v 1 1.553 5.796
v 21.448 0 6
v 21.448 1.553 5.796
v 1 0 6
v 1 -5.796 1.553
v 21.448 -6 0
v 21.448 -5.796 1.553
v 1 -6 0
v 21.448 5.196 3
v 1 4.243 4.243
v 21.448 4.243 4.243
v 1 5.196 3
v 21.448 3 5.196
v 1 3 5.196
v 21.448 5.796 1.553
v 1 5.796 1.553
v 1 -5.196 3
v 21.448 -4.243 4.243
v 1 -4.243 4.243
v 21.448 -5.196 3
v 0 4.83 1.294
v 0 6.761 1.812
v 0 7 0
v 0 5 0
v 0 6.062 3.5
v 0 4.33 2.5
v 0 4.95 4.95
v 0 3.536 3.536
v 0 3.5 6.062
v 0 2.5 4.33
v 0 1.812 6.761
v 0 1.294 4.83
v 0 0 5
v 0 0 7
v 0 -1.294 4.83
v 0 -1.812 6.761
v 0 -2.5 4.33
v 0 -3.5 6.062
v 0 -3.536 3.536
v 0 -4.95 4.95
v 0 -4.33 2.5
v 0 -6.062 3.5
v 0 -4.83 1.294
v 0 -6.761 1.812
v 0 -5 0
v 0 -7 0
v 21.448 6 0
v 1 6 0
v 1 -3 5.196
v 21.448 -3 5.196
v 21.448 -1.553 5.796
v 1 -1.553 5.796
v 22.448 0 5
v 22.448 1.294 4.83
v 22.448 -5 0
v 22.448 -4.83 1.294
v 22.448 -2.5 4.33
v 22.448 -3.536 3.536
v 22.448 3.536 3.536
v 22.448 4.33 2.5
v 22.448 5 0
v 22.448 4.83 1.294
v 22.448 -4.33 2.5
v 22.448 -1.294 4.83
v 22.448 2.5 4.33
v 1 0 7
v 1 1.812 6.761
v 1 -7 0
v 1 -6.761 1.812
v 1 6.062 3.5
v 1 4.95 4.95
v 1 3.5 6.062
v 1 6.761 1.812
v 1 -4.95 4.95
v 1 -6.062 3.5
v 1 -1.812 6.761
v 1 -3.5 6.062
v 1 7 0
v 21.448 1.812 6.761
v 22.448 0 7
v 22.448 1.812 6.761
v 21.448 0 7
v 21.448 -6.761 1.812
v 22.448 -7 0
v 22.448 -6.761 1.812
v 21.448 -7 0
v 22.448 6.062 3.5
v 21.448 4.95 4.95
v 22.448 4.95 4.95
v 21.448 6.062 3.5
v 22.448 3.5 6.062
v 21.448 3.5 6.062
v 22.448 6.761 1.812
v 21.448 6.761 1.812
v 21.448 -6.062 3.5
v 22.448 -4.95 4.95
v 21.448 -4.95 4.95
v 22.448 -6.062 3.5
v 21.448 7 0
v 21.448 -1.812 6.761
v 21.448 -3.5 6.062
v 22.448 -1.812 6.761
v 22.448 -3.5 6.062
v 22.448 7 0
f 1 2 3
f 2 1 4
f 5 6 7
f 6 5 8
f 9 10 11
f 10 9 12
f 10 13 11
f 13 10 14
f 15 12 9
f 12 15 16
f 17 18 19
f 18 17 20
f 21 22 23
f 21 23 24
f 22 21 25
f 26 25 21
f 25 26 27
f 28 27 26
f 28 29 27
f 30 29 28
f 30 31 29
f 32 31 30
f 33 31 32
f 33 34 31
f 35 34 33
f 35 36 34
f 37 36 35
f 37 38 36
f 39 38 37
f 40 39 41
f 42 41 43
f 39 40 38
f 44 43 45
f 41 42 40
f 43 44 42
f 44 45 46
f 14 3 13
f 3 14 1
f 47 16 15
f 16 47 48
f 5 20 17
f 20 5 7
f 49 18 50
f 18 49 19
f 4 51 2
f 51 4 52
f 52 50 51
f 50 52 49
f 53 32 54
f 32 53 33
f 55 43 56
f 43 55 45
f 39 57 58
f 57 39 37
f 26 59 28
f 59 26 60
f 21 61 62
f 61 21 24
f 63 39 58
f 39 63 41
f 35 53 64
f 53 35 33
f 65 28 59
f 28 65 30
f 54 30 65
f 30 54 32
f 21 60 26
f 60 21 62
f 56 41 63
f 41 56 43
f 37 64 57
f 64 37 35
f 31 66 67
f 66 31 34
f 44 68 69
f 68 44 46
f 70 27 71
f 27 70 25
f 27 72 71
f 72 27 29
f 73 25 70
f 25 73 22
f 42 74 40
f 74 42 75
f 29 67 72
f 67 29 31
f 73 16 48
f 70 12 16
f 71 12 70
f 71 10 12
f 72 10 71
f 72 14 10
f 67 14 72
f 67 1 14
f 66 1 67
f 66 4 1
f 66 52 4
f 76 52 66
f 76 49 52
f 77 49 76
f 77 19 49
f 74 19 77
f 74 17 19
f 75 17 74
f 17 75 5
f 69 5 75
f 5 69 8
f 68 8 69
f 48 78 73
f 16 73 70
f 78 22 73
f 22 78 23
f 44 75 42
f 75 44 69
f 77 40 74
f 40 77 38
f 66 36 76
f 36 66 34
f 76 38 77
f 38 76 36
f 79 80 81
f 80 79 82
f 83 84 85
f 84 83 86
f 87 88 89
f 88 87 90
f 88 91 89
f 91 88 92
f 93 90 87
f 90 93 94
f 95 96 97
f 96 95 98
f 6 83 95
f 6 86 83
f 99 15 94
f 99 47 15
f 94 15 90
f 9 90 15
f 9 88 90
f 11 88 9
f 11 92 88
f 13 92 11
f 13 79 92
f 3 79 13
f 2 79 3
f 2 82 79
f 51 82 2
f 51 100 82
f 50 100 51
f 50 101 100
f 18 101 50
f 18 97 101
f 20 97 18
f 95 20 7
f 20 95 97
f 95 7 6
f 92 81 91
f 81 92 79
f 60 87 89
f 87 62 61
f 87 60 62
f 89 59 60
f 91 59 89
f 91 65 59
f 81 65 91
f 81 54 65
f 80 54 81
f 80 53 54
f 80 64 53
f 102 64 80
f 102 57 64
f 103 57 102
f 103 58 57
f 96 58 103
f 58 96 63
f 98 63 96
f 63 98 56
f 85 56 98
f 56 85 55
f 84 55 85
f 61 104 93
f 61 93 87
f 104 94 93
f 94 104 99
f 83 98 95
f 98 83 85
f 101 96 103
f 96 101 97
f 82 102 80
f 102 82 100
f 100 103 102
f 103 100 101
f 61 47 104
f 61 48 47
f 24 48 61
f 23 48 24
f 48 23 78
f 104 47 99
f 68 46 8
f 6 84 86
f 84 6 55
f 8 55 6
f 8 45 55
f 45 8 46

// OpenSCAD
// file: ../build_environments.scad
// build_environments.scad: modules to build level sections
//

module pool(diameter=10.0, wall_height=2.0, step_width=3.0, connections=[])
{
    difference() {
        union() {
        difference() {
            cylinder(h=0.5,r1=diameter+step_width,r2=diameter+step_width,$fn=48);
            translate([0,0,-0.1])
                cylinder(h=0.7,r1=diameter,r2=diameter,$fn=48);
        }
        difference() {
            cylinder(h=wall_height,r1=diameter+step_width+1.0,r2=diameter+step_width+1.0,$fn=48);
            translate([0,0,-0.1])
                cylinder(h=wall_height+0.2,r1=diameter+step_width,r2=diameter+step_width,$fn=48);
        }
        }
    
        for (c = connections)
        {
            rotate([0,90,0]) {
                angle = atan2(c[1],c[0]);
                rotate([-angle,0,0]) {
                    cylinder(h=diameter+5.0,r1=c[2],r2=c[2],$fn=48);
                }
            }
        }
    }
}

module straight(length=10.0, width=2.0, dy1=0.0, dy2=0.0, dz=0.0)
{
    dims = [0, 0, 0, 0, 0, (dz/length)];
    matrix = [
        [ 1, dims[0], dims[1], 0 ],
        [ dims[2], 1, dims[4], 0 ],
        [ dims[5], dims[3], 1, 0 ],
        [ 0, 0, 0, 1 ]
    ];
    multmatrix(matrix)
    difference() {
        translate([dy1,0,0])
        union() {
            rotate([0,90,0]) {
                difference() {
                    cylinder(h=(length-dy1-dy2),r1=width+1.0,r2=width+1.0,$fn=24);
                    translate([0,0,-0.1])
                        cylinder(h=(length-dy1-dy2+0.2),r1=width,r2=width,$fn=24);
                }
                difference() {
                    cylinder(h=1.0,r1=width+2.0,r2=width+2.0,$fn=24);
                    translate([0,0,-0.1])
                        cylinder(h=1.2,r1=width,r2=width,$fn=24);
                }
                translate([0,0,(length-dy1-dy2)-1.0]) {
                    difference() {
                        cylinder(h=1.0,r1=width+2.0,r2=width+2.0,$fn=24);
                        translate([0,0,-0.1])
                            cylinder(h=1.2,r1=width,r2=width,$fn=24);
                    }
                }
            }
        }
        translate([0,0,-(2*width+4.0)/2])
            cube([3*length,3*length,2*width+4.0],center=true);
    }
}

module curve(p0=[0,0], center=[0,0], dir=1, angle=0.0, width=2.0)
{
    radius = sqrt((p0[0]-center[0])*(p0[0]-center[0]) + (p0[1]-center[1])*(p0[1]-center[1]));
    if (dir == 0) {
        difference() {
            rotate([0,0,-90])
            difference() {
                rotate_extrude(angle = angle, convexity = 10, $fn=32)
                    translate([radius, 0, 0])
                        circle(r = width+1.0,$fn=24);
                rotate([0,0,-1.0])
                    rotate_extrude(angle = angle+2.0, convexity = 10, $fn=32)
                        translate([radius, 0, 0])
                            circle(r = width,$fn=24);
            }
            translate([0,0,-(2*width+4.0)/2])
                cube([5*radius,5*radius,2*width+4.0],center=true);
        }
    }
    else {
        difference() {
            rotate([0,0,90])
            difference() {
                rotate_extrude(angle = -angle, convexity = 10, $fn=32)
                    translate([radius, 0, 0])
                        circle(r = width+1.0,$fn=24);
                rotate([0,0,1.0])
                    rotate_extrude(angle = -angle-2.0, convexity = 10, $fn=32)
                        translate([radius, 0, 0])
                            circle(r = width,$fn=24);
            }
            translate([0,0,-(2*width+4.0)/2])
                cube([5*radius,5*radius,2*width+4.0],center=true);
        }
    }

}

// test pool
//pool(diameter=12.0000, wall_height=3.0000, step_width=3.0000, connections=[[0.0000,-26.0000,2.0000], [23.6074,0.0000,2.0000]]);

// test straight, slope
//straight(length=26.0000, width=2.0000, dy1=11.8322, dy2=6.7082, dz=0.0000);
//straight(length=29.1549, width=12.0000, dy1=0.0000, dy2=0.0000, dz=-15.0000);

// test curve
//curve(p0=[23.6074, 0.0000], center=[23.6074, 5.0000], dir=0, angle=60.1011, width=2.0000);
//curve(p0=[33.6426, 12.4219], center=[37.9771, 9.9295], dir=1, angle=120.4627, width=2.0000);
// main file
use <../build_environments.scad>;
straight(length=22.4478, width=5.0000, dy1=0.0000, dy2=0.0000, dz=0.0000);
